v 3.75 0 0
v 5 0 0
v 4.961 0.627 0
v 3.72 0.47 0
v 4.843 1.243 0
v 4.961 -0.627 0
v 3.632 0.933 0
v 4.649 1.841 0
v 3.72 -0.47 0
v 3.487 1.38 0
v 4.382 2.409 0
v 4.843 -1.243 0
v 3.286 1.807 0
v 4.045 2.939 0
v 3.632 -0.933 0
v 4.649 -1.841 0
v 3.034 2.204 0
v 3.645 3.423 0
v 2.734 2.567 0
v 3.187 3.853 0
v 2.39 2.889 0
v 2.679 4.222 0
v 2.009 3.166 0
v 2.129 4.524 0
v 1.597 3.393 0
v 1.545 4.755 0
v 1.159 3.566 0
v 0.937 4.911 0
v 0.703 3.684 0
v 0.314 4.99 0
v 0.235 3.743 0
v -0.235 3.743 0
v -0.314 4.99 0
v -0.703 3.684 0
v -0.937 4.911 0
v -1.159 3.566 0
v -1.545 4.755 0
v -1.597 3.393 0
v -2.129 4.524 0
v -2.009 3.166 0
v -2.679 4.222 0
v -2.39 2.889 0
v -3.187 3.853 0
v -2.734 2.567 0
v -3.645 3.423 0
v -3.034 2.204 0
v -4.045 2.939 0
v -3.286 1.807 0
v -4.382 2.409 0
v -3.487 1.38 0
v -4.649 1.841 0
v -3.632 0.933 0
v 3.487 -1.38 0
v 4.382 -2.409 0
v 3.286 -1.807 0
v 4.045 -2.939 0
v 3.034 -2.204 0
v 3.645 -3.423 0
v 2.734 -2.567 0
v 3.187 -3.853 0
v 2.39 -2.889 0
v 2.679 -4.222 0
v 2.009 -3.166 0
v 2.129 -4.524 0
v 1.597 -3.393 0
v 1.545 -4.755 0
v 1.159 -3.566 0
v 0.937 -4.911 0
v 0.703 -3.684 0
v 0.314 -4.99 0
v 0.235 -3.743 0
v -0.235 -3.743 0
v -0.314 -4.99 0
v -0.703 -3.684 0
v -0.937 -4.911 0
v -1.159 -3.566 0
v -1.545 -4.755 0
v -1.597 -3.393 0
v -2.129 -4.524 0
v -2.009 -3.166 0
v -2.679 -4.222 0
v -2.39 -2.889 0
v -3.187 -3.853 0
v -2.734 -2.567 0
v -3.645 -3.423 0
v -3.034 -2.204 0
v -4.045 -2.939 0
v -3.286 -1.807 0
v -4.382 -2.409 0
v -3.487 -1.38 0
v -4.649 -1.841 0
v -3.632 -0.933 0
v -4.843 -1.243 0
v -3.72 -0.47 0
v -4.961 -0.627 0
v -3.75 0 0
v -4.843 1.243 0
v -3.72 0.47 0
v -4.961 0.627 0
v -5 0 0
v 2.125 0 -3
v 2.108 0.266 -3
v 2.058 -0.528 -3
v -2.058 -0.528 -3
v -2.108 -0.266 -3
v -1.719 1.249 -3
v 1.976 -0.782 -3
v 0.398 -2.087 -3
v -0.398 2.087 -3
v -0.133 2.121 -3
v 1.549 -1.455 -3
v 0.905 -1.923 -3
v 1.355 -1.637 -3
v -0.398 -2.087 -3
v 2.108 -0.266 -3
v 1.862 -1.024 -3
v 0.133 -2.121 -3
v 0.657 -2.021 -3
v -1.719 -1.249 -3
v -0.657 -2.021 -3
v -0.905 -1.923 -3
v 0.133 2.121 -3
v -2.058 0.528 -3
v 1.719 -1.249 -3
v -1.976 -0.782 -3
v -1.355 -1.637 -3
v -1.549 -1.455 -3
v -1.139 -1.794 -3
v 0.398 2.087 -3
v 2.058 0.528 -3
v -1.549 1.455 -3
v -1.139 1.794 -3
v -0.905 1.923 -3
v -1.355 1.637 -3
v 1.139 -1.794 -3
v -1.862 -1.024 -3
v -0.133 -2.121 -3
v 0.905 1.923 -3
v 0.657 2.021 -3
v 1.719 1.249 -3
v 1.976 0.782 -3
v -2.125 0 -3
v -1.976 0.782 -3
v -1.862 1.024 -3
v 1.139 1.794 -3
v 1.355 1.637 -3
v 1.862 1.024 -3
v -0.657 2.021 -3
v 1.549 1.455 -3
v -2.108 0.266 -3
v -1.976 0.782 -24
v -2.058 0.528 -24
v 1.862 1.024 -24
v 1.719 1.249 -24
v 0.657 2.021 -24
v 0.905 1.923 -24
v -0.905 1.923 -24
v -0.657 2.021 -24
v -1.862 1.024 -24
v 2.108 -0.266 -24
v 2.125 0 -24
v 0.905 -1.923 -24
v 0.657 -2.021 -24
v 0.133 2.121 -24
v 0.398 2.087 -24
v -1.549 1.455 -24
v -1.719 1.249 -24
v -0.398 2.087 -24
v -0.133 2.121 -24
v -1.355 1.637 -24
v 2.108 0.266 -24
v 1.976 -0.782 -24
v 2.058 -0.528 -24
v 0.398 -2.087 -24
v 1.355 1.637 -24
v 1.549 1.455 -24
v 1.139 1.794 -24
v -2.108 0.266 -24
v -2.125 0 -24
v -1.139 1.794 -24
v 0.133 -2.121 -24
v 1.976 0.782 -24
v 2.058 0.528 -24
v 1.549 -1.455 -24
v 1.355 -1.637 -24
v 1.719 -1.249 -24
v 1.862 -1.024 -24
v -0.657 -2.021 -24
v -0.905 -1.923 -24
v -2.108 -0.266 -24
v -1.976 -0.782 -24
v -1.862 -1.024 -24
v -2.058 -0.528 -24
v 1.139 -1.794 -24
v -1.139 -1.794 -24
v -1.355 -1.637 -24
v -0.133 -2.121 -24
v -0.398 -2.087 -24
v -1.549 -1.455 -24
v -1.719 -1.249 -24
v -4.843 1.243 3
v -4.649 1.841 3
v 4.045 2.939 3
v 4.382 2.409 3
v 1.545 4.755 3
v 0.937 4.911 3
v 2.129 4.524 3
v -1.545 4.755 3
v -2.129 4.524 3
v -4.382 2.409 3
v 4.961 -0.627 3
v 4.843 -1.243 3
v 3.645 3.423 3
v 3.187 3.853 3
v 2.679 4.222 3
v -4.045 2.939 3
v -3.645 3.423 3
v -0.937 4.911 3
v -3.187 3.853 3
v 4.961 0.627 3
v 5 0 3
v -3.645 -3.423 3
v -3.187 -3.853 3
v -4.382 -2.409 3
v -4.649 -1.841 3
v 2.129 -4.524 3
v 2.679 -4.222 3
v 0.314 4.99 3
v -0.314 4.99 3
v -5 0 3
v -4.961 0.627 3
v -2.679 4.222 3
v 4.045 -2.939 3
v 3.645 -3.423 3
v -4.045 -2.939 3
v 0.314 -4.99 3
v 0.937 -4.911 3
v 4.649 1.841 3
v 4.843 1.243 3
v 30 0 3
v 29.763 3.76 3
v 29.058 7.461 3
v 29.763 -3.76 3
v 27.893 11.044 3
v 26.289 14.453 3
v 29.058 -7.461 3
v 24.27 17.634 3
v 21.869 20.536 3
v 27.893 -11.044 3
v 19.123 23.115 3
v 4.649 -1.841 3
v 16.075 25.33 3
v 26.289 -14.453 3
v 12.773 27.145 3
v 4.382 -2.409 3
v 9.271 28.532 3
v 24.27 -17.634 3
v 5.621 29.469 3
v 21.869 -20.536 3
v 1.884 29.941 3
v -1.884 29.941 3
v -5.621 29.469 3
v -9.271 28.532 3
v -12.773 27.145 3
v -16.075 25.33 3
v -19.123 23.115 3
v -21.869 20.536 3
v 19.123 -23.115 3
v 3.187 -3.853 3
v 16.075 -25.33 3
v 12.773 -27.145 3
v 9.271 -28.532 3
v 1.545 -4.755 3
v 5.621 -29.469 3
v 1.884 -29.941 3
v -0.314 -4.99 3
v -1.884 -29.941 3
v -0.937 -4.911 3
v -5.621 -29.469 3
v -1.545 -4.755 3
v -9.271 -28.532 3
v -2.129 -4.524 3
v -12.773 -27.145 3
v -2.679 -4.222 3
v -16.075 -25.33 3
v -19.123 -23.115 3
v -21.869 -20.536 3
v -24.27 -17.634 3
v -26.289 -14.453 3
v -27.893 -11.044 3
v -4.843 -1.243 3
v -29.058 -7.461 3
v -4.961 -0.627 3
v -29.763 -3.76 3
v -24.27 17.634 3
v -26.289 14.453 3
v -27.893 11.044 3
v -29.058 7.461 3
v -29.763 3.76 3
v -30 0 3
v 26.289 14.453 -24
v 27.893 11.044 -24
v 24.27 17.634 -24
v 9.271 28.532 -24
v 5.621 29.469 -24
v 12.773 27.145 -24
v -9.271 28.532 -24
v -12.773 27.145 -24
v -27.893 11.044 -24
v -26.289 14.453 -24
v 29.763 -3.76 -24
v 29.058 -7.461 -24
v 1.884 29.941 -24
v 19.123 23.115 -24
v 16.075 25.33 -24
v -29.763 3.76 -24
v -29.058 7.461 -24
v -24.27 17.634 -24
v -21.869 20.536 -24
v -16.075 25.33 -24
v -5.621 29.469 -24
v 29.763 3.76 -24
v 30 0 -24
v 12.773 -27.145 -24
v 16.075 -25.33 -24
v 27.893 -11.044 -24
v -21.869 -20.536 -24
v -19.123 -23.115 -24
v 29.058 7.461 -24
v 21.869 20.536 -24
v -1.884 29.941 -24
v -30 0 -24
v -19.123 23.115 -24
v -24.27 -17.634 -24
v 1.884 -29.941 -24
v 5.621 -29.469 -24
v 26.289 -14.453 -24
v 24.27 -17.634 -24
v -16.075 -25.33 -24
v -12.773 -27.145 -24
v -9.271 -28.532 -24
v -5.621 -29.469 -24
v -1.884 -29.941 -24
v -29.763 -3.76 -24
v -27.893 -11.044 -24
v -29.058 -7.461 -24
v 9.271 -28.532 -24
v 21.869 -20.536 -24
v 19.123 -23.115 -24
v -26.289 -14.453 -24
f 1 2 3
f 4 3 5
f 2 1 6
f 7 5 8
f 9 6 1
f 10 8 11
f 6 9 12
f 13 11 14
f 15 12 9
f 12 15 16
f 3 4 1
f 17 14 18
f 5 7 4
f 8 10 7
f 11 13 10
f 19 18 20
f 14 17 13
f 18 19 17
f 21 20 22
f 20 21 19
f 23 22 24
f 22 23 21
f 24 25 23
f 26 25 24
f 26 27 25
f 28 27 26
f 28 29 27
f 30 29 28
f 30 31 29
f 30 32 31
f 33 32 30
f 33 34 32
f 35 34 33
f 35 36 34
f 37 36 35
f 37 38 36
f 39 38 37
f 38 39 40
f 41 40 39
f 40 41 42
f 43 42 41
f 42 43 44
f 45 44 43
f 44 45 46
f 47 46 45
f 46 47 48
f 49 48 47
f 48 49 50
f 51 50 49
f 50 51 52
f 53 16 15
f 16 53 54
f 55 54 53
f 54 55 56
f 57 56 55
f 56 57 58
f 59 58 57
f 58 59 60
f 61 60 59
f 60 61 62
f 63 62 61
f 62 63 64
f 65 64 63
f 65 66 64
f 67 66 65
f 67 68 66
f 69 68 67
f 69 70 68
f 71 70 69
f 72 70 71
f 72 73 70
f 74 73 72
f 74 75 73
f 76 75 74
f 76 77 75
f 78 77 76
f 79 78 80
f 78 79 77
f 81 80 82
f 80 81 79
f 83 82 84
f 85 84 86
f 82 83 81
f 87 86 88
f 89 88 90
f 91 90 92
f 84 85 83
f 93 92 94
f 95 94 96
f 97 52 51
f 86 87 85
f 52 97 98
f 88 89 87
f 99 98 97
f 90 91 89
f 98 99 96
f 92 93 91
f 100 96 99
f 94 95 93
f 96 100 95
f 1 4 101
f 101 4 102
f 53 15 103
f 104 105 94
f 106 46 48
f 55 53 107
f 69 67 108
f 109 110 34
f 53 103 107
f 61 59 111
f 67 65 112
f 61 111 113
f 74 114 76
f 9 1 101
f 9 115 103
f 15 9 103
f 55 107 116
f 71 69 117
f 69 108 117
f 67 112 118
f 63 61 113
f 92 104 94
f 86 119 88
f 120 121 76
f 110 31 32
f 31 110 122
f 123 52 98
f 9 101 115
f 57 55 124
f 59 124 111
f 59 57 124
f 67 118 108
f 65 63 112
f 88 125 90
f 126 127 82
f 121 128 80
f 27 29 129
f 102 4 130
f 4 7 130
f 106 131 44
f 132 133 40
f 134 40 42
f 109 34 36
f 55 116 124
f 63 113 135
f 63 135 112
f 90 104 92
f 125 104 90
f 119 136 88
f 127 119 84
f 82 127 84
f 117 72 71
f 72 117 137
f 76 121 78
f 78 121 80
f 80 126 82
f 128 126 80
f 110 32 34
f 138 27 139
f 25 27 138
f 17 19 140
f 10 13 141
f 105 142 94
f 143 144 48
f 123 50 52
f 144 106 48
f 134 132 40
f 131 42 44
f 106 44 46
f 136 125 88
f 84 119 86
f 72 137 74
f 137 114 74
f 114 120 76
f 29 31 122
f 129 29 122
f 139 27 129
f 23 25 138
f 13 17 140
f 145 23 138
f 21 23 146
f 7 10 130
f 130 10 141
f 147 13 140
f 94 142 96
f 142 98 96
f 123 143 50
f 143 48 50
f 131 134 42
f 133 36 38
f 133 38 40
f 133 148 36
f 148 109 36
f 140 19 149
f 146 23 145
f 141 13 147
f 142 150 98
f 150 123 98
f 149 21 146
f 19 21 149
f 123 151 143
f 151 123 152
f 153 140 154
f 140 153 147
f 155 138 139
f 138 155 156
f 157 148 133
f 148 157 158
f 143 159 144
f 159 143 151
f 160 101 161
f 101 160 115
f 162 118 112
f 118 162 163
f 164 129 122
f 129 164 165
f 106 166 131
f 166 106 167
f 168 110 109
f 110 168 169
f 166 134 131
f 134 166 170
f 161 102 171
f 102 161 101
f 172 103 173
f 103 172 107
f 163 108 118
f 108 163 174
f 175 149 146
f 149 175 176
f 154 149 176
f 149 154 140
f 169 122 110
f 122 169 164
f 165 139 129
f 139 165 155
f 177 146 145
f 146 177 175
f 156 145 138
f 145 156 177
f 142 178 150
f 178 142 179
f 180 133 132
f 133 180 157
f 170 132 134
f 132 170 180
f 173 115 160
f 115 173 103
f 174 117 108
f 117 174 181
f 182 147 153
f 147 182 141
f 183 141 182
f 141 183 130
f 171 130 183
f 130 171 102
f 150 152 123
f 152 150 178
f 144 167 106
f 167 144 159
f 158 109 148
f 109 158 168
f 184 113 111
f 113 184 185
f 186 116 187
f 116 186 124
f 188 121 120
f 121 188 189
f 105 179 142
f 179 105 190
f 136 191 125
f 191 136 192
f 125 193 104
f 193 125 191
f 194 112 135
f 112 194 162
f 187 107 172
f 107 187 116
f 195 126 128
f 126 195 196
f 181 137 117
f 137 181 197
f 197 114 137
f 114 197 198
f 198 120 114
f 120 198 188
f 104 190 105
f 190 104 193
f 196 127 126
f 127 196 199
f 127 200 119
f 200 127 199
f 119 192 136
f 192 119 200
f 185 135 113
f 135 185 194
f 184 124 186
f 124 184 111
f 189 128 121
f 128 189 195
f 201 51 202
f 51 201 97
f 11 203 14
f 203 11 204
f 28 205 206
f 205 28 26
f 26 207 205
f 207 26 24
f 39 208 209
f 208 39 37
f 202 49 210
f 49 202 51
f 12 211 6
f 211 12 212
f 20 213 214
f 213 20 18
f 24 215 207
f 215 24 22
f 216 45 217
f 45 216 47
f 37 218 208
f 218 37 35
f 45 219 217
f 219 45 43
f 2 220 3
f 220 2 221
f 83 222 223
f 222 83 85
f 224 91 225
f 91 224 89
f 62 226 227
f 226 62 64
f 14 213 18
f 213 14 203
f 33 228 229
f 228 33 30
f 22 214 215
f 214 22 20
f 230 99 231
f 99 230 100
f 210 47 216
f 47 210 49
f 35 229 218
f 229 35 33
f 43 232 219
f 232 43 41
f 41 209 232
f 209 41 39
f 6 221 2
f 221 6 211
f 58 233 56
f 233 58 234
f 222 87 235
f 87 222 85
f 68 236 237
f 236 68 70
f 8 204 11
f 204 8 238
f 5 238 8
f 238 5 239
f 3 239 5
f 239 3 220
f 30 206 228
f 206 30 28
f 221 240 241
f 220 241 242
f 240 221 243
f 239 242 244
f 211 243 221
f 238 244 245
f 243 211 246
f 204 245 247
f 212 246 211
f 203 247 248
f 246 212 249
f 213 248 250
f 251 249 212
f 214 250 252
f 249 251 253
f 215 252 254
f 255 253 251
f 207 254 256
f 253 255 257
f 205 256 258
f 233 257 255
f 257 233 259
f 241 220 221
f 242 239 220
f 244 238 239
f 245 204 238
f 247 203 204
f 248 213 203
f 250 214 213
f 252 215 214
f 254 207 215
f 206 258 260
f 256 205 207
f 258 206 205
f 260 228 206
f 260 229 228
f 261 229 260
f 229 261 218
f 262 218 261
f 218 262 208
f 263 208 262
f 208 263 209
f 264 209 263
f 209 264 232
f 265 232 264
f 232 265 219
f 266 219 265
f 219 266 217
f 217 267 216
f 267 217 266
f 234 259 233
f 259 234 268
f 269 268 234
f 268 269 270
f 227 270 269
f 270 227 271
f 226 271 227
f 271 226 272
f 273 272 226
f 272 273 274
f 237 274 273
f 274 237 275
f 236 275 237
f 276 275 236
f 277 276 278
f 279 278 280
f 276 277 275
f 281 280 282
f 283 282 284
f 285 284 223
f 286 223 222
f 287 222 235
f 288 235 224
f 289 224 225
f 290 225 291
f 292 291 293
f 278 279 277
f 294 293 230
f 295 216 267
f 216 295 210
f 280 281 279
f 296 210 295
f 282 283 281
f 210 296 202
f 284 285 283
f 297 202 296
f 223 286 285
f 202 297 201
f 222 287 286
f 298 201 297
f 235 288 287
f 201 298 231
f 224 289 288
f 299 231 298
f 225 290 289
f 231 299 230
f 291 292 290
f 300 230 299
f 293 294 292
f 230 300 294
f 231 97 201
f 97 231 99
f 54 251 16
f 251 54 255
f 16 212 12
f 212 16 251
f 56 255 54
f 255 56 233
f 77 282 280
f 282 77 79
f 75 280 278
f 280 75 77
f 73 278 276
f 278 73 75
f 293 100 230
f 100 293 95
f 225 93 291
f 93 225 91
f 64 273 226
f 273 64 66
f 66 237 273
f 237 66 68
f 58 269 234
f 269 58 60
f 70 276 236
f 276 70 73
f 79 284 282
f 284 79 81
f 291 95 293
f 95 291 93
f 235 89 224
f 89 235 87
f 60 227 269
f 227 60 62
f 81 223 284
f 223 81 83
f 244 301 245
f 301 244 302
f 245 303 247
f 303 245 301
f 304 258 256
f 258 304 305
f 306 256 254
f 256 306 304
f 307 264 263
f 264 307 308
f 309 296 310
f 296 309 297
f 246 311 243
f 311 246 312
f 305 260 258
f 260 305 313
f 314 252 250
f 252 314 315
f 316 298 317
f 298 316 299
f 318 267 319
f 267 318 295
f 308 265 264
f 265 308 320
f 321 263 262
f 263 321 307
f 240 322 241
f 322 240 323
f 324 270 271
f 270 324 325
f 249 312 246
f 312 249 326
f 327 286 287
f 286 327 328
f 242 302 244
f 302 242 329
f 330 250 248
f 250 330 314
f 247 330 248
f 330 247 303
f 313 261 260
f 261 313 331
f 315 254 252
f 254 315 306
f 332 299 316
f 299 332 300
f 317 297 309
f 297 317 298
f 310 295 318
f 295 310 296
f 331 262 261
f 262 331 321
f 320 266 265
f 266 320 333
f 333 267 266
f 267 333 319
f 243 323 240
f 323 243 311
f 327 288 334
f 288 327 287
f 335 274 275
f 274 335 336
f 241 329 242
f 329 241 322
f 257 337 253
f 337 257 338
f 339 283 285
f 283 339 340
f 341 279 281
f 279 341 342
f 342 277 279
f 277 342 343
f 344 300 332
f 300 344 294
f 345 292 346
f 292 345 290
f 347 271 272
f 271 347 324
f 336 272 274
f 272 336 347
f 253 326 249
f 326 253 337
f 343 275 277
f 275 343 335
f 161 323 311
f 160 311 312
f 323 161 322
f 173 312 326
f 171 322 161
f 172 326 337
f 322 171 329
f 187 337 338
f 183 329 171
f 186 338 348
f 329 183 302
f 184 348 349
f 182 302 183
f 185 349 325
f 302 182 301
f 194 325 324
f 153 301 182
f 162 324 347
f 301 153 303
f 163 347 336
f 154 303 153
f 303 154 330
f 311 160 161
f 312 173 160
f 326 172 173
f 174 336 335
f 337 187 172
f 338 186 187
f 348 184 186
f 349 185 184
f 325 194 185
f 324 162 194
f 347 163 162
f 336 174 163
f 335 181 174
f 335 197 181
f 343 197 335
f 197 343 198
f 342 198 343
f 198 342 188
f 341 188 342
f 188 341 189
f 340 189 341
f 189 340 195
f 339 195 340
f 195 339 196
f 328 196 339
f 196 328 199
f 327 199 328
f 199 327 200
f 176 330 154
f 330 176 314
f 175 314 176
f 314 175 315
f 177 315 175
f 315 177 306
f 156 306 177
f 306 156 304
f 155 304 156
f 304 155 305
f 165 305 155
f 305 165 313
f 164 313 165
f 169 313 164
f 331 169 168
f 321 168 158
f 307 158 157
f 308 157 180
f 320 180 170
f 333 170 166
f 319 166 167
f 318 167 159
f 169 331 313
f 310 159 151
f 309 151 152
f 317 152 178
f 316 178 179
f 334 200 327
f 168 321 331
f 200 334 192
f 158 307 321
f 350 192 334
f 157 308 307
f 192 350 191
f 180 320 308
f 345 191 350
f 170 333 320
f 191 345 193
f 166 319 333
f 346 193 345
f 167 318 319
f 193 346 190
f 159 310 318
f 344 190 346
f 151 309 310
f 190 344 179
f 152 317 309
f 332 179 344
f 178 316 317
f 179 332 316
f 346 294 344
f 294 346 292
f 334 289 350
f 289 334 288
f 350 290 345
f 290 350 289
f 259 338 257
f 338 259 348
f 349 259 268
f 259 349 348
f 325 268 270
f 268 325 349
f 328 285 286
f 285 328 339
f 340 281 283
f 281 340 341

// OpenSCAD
$fn = 50;


difference() {
	union() {
		translate(v = [0, 0, -24.0000000000]) {
			cylinder(h = 27, r = 30.0000000000);
		}
	}
	union() {
		translate(v = [0, 0, 0]) {
			rotate(a = [0, 0, 0]) {
				difference() {
					union() {
						translate(v = [0, 0, -27.0000000000]) {
							cylinder(h = 27, r = 2.0000000000);
						}
						translate(v = [0, 0, -3]) {
							cylinder(h = 3, r1 = 2.1250000000, r2 = 3.7500000000);
						}
						translate(v = [0, 0, -27.0000000000]) {
							cylinder(h = 27, r = 2.1250000000);
						}
						translate(v = [0, 0, -27.0000000000]) {
							cylinder(h = 27, r = 2.0000000000);
						}
					}
					union();
				}
			}
		}
		#cylinder(h = 3, r = 5.0000000000);
	}
}
